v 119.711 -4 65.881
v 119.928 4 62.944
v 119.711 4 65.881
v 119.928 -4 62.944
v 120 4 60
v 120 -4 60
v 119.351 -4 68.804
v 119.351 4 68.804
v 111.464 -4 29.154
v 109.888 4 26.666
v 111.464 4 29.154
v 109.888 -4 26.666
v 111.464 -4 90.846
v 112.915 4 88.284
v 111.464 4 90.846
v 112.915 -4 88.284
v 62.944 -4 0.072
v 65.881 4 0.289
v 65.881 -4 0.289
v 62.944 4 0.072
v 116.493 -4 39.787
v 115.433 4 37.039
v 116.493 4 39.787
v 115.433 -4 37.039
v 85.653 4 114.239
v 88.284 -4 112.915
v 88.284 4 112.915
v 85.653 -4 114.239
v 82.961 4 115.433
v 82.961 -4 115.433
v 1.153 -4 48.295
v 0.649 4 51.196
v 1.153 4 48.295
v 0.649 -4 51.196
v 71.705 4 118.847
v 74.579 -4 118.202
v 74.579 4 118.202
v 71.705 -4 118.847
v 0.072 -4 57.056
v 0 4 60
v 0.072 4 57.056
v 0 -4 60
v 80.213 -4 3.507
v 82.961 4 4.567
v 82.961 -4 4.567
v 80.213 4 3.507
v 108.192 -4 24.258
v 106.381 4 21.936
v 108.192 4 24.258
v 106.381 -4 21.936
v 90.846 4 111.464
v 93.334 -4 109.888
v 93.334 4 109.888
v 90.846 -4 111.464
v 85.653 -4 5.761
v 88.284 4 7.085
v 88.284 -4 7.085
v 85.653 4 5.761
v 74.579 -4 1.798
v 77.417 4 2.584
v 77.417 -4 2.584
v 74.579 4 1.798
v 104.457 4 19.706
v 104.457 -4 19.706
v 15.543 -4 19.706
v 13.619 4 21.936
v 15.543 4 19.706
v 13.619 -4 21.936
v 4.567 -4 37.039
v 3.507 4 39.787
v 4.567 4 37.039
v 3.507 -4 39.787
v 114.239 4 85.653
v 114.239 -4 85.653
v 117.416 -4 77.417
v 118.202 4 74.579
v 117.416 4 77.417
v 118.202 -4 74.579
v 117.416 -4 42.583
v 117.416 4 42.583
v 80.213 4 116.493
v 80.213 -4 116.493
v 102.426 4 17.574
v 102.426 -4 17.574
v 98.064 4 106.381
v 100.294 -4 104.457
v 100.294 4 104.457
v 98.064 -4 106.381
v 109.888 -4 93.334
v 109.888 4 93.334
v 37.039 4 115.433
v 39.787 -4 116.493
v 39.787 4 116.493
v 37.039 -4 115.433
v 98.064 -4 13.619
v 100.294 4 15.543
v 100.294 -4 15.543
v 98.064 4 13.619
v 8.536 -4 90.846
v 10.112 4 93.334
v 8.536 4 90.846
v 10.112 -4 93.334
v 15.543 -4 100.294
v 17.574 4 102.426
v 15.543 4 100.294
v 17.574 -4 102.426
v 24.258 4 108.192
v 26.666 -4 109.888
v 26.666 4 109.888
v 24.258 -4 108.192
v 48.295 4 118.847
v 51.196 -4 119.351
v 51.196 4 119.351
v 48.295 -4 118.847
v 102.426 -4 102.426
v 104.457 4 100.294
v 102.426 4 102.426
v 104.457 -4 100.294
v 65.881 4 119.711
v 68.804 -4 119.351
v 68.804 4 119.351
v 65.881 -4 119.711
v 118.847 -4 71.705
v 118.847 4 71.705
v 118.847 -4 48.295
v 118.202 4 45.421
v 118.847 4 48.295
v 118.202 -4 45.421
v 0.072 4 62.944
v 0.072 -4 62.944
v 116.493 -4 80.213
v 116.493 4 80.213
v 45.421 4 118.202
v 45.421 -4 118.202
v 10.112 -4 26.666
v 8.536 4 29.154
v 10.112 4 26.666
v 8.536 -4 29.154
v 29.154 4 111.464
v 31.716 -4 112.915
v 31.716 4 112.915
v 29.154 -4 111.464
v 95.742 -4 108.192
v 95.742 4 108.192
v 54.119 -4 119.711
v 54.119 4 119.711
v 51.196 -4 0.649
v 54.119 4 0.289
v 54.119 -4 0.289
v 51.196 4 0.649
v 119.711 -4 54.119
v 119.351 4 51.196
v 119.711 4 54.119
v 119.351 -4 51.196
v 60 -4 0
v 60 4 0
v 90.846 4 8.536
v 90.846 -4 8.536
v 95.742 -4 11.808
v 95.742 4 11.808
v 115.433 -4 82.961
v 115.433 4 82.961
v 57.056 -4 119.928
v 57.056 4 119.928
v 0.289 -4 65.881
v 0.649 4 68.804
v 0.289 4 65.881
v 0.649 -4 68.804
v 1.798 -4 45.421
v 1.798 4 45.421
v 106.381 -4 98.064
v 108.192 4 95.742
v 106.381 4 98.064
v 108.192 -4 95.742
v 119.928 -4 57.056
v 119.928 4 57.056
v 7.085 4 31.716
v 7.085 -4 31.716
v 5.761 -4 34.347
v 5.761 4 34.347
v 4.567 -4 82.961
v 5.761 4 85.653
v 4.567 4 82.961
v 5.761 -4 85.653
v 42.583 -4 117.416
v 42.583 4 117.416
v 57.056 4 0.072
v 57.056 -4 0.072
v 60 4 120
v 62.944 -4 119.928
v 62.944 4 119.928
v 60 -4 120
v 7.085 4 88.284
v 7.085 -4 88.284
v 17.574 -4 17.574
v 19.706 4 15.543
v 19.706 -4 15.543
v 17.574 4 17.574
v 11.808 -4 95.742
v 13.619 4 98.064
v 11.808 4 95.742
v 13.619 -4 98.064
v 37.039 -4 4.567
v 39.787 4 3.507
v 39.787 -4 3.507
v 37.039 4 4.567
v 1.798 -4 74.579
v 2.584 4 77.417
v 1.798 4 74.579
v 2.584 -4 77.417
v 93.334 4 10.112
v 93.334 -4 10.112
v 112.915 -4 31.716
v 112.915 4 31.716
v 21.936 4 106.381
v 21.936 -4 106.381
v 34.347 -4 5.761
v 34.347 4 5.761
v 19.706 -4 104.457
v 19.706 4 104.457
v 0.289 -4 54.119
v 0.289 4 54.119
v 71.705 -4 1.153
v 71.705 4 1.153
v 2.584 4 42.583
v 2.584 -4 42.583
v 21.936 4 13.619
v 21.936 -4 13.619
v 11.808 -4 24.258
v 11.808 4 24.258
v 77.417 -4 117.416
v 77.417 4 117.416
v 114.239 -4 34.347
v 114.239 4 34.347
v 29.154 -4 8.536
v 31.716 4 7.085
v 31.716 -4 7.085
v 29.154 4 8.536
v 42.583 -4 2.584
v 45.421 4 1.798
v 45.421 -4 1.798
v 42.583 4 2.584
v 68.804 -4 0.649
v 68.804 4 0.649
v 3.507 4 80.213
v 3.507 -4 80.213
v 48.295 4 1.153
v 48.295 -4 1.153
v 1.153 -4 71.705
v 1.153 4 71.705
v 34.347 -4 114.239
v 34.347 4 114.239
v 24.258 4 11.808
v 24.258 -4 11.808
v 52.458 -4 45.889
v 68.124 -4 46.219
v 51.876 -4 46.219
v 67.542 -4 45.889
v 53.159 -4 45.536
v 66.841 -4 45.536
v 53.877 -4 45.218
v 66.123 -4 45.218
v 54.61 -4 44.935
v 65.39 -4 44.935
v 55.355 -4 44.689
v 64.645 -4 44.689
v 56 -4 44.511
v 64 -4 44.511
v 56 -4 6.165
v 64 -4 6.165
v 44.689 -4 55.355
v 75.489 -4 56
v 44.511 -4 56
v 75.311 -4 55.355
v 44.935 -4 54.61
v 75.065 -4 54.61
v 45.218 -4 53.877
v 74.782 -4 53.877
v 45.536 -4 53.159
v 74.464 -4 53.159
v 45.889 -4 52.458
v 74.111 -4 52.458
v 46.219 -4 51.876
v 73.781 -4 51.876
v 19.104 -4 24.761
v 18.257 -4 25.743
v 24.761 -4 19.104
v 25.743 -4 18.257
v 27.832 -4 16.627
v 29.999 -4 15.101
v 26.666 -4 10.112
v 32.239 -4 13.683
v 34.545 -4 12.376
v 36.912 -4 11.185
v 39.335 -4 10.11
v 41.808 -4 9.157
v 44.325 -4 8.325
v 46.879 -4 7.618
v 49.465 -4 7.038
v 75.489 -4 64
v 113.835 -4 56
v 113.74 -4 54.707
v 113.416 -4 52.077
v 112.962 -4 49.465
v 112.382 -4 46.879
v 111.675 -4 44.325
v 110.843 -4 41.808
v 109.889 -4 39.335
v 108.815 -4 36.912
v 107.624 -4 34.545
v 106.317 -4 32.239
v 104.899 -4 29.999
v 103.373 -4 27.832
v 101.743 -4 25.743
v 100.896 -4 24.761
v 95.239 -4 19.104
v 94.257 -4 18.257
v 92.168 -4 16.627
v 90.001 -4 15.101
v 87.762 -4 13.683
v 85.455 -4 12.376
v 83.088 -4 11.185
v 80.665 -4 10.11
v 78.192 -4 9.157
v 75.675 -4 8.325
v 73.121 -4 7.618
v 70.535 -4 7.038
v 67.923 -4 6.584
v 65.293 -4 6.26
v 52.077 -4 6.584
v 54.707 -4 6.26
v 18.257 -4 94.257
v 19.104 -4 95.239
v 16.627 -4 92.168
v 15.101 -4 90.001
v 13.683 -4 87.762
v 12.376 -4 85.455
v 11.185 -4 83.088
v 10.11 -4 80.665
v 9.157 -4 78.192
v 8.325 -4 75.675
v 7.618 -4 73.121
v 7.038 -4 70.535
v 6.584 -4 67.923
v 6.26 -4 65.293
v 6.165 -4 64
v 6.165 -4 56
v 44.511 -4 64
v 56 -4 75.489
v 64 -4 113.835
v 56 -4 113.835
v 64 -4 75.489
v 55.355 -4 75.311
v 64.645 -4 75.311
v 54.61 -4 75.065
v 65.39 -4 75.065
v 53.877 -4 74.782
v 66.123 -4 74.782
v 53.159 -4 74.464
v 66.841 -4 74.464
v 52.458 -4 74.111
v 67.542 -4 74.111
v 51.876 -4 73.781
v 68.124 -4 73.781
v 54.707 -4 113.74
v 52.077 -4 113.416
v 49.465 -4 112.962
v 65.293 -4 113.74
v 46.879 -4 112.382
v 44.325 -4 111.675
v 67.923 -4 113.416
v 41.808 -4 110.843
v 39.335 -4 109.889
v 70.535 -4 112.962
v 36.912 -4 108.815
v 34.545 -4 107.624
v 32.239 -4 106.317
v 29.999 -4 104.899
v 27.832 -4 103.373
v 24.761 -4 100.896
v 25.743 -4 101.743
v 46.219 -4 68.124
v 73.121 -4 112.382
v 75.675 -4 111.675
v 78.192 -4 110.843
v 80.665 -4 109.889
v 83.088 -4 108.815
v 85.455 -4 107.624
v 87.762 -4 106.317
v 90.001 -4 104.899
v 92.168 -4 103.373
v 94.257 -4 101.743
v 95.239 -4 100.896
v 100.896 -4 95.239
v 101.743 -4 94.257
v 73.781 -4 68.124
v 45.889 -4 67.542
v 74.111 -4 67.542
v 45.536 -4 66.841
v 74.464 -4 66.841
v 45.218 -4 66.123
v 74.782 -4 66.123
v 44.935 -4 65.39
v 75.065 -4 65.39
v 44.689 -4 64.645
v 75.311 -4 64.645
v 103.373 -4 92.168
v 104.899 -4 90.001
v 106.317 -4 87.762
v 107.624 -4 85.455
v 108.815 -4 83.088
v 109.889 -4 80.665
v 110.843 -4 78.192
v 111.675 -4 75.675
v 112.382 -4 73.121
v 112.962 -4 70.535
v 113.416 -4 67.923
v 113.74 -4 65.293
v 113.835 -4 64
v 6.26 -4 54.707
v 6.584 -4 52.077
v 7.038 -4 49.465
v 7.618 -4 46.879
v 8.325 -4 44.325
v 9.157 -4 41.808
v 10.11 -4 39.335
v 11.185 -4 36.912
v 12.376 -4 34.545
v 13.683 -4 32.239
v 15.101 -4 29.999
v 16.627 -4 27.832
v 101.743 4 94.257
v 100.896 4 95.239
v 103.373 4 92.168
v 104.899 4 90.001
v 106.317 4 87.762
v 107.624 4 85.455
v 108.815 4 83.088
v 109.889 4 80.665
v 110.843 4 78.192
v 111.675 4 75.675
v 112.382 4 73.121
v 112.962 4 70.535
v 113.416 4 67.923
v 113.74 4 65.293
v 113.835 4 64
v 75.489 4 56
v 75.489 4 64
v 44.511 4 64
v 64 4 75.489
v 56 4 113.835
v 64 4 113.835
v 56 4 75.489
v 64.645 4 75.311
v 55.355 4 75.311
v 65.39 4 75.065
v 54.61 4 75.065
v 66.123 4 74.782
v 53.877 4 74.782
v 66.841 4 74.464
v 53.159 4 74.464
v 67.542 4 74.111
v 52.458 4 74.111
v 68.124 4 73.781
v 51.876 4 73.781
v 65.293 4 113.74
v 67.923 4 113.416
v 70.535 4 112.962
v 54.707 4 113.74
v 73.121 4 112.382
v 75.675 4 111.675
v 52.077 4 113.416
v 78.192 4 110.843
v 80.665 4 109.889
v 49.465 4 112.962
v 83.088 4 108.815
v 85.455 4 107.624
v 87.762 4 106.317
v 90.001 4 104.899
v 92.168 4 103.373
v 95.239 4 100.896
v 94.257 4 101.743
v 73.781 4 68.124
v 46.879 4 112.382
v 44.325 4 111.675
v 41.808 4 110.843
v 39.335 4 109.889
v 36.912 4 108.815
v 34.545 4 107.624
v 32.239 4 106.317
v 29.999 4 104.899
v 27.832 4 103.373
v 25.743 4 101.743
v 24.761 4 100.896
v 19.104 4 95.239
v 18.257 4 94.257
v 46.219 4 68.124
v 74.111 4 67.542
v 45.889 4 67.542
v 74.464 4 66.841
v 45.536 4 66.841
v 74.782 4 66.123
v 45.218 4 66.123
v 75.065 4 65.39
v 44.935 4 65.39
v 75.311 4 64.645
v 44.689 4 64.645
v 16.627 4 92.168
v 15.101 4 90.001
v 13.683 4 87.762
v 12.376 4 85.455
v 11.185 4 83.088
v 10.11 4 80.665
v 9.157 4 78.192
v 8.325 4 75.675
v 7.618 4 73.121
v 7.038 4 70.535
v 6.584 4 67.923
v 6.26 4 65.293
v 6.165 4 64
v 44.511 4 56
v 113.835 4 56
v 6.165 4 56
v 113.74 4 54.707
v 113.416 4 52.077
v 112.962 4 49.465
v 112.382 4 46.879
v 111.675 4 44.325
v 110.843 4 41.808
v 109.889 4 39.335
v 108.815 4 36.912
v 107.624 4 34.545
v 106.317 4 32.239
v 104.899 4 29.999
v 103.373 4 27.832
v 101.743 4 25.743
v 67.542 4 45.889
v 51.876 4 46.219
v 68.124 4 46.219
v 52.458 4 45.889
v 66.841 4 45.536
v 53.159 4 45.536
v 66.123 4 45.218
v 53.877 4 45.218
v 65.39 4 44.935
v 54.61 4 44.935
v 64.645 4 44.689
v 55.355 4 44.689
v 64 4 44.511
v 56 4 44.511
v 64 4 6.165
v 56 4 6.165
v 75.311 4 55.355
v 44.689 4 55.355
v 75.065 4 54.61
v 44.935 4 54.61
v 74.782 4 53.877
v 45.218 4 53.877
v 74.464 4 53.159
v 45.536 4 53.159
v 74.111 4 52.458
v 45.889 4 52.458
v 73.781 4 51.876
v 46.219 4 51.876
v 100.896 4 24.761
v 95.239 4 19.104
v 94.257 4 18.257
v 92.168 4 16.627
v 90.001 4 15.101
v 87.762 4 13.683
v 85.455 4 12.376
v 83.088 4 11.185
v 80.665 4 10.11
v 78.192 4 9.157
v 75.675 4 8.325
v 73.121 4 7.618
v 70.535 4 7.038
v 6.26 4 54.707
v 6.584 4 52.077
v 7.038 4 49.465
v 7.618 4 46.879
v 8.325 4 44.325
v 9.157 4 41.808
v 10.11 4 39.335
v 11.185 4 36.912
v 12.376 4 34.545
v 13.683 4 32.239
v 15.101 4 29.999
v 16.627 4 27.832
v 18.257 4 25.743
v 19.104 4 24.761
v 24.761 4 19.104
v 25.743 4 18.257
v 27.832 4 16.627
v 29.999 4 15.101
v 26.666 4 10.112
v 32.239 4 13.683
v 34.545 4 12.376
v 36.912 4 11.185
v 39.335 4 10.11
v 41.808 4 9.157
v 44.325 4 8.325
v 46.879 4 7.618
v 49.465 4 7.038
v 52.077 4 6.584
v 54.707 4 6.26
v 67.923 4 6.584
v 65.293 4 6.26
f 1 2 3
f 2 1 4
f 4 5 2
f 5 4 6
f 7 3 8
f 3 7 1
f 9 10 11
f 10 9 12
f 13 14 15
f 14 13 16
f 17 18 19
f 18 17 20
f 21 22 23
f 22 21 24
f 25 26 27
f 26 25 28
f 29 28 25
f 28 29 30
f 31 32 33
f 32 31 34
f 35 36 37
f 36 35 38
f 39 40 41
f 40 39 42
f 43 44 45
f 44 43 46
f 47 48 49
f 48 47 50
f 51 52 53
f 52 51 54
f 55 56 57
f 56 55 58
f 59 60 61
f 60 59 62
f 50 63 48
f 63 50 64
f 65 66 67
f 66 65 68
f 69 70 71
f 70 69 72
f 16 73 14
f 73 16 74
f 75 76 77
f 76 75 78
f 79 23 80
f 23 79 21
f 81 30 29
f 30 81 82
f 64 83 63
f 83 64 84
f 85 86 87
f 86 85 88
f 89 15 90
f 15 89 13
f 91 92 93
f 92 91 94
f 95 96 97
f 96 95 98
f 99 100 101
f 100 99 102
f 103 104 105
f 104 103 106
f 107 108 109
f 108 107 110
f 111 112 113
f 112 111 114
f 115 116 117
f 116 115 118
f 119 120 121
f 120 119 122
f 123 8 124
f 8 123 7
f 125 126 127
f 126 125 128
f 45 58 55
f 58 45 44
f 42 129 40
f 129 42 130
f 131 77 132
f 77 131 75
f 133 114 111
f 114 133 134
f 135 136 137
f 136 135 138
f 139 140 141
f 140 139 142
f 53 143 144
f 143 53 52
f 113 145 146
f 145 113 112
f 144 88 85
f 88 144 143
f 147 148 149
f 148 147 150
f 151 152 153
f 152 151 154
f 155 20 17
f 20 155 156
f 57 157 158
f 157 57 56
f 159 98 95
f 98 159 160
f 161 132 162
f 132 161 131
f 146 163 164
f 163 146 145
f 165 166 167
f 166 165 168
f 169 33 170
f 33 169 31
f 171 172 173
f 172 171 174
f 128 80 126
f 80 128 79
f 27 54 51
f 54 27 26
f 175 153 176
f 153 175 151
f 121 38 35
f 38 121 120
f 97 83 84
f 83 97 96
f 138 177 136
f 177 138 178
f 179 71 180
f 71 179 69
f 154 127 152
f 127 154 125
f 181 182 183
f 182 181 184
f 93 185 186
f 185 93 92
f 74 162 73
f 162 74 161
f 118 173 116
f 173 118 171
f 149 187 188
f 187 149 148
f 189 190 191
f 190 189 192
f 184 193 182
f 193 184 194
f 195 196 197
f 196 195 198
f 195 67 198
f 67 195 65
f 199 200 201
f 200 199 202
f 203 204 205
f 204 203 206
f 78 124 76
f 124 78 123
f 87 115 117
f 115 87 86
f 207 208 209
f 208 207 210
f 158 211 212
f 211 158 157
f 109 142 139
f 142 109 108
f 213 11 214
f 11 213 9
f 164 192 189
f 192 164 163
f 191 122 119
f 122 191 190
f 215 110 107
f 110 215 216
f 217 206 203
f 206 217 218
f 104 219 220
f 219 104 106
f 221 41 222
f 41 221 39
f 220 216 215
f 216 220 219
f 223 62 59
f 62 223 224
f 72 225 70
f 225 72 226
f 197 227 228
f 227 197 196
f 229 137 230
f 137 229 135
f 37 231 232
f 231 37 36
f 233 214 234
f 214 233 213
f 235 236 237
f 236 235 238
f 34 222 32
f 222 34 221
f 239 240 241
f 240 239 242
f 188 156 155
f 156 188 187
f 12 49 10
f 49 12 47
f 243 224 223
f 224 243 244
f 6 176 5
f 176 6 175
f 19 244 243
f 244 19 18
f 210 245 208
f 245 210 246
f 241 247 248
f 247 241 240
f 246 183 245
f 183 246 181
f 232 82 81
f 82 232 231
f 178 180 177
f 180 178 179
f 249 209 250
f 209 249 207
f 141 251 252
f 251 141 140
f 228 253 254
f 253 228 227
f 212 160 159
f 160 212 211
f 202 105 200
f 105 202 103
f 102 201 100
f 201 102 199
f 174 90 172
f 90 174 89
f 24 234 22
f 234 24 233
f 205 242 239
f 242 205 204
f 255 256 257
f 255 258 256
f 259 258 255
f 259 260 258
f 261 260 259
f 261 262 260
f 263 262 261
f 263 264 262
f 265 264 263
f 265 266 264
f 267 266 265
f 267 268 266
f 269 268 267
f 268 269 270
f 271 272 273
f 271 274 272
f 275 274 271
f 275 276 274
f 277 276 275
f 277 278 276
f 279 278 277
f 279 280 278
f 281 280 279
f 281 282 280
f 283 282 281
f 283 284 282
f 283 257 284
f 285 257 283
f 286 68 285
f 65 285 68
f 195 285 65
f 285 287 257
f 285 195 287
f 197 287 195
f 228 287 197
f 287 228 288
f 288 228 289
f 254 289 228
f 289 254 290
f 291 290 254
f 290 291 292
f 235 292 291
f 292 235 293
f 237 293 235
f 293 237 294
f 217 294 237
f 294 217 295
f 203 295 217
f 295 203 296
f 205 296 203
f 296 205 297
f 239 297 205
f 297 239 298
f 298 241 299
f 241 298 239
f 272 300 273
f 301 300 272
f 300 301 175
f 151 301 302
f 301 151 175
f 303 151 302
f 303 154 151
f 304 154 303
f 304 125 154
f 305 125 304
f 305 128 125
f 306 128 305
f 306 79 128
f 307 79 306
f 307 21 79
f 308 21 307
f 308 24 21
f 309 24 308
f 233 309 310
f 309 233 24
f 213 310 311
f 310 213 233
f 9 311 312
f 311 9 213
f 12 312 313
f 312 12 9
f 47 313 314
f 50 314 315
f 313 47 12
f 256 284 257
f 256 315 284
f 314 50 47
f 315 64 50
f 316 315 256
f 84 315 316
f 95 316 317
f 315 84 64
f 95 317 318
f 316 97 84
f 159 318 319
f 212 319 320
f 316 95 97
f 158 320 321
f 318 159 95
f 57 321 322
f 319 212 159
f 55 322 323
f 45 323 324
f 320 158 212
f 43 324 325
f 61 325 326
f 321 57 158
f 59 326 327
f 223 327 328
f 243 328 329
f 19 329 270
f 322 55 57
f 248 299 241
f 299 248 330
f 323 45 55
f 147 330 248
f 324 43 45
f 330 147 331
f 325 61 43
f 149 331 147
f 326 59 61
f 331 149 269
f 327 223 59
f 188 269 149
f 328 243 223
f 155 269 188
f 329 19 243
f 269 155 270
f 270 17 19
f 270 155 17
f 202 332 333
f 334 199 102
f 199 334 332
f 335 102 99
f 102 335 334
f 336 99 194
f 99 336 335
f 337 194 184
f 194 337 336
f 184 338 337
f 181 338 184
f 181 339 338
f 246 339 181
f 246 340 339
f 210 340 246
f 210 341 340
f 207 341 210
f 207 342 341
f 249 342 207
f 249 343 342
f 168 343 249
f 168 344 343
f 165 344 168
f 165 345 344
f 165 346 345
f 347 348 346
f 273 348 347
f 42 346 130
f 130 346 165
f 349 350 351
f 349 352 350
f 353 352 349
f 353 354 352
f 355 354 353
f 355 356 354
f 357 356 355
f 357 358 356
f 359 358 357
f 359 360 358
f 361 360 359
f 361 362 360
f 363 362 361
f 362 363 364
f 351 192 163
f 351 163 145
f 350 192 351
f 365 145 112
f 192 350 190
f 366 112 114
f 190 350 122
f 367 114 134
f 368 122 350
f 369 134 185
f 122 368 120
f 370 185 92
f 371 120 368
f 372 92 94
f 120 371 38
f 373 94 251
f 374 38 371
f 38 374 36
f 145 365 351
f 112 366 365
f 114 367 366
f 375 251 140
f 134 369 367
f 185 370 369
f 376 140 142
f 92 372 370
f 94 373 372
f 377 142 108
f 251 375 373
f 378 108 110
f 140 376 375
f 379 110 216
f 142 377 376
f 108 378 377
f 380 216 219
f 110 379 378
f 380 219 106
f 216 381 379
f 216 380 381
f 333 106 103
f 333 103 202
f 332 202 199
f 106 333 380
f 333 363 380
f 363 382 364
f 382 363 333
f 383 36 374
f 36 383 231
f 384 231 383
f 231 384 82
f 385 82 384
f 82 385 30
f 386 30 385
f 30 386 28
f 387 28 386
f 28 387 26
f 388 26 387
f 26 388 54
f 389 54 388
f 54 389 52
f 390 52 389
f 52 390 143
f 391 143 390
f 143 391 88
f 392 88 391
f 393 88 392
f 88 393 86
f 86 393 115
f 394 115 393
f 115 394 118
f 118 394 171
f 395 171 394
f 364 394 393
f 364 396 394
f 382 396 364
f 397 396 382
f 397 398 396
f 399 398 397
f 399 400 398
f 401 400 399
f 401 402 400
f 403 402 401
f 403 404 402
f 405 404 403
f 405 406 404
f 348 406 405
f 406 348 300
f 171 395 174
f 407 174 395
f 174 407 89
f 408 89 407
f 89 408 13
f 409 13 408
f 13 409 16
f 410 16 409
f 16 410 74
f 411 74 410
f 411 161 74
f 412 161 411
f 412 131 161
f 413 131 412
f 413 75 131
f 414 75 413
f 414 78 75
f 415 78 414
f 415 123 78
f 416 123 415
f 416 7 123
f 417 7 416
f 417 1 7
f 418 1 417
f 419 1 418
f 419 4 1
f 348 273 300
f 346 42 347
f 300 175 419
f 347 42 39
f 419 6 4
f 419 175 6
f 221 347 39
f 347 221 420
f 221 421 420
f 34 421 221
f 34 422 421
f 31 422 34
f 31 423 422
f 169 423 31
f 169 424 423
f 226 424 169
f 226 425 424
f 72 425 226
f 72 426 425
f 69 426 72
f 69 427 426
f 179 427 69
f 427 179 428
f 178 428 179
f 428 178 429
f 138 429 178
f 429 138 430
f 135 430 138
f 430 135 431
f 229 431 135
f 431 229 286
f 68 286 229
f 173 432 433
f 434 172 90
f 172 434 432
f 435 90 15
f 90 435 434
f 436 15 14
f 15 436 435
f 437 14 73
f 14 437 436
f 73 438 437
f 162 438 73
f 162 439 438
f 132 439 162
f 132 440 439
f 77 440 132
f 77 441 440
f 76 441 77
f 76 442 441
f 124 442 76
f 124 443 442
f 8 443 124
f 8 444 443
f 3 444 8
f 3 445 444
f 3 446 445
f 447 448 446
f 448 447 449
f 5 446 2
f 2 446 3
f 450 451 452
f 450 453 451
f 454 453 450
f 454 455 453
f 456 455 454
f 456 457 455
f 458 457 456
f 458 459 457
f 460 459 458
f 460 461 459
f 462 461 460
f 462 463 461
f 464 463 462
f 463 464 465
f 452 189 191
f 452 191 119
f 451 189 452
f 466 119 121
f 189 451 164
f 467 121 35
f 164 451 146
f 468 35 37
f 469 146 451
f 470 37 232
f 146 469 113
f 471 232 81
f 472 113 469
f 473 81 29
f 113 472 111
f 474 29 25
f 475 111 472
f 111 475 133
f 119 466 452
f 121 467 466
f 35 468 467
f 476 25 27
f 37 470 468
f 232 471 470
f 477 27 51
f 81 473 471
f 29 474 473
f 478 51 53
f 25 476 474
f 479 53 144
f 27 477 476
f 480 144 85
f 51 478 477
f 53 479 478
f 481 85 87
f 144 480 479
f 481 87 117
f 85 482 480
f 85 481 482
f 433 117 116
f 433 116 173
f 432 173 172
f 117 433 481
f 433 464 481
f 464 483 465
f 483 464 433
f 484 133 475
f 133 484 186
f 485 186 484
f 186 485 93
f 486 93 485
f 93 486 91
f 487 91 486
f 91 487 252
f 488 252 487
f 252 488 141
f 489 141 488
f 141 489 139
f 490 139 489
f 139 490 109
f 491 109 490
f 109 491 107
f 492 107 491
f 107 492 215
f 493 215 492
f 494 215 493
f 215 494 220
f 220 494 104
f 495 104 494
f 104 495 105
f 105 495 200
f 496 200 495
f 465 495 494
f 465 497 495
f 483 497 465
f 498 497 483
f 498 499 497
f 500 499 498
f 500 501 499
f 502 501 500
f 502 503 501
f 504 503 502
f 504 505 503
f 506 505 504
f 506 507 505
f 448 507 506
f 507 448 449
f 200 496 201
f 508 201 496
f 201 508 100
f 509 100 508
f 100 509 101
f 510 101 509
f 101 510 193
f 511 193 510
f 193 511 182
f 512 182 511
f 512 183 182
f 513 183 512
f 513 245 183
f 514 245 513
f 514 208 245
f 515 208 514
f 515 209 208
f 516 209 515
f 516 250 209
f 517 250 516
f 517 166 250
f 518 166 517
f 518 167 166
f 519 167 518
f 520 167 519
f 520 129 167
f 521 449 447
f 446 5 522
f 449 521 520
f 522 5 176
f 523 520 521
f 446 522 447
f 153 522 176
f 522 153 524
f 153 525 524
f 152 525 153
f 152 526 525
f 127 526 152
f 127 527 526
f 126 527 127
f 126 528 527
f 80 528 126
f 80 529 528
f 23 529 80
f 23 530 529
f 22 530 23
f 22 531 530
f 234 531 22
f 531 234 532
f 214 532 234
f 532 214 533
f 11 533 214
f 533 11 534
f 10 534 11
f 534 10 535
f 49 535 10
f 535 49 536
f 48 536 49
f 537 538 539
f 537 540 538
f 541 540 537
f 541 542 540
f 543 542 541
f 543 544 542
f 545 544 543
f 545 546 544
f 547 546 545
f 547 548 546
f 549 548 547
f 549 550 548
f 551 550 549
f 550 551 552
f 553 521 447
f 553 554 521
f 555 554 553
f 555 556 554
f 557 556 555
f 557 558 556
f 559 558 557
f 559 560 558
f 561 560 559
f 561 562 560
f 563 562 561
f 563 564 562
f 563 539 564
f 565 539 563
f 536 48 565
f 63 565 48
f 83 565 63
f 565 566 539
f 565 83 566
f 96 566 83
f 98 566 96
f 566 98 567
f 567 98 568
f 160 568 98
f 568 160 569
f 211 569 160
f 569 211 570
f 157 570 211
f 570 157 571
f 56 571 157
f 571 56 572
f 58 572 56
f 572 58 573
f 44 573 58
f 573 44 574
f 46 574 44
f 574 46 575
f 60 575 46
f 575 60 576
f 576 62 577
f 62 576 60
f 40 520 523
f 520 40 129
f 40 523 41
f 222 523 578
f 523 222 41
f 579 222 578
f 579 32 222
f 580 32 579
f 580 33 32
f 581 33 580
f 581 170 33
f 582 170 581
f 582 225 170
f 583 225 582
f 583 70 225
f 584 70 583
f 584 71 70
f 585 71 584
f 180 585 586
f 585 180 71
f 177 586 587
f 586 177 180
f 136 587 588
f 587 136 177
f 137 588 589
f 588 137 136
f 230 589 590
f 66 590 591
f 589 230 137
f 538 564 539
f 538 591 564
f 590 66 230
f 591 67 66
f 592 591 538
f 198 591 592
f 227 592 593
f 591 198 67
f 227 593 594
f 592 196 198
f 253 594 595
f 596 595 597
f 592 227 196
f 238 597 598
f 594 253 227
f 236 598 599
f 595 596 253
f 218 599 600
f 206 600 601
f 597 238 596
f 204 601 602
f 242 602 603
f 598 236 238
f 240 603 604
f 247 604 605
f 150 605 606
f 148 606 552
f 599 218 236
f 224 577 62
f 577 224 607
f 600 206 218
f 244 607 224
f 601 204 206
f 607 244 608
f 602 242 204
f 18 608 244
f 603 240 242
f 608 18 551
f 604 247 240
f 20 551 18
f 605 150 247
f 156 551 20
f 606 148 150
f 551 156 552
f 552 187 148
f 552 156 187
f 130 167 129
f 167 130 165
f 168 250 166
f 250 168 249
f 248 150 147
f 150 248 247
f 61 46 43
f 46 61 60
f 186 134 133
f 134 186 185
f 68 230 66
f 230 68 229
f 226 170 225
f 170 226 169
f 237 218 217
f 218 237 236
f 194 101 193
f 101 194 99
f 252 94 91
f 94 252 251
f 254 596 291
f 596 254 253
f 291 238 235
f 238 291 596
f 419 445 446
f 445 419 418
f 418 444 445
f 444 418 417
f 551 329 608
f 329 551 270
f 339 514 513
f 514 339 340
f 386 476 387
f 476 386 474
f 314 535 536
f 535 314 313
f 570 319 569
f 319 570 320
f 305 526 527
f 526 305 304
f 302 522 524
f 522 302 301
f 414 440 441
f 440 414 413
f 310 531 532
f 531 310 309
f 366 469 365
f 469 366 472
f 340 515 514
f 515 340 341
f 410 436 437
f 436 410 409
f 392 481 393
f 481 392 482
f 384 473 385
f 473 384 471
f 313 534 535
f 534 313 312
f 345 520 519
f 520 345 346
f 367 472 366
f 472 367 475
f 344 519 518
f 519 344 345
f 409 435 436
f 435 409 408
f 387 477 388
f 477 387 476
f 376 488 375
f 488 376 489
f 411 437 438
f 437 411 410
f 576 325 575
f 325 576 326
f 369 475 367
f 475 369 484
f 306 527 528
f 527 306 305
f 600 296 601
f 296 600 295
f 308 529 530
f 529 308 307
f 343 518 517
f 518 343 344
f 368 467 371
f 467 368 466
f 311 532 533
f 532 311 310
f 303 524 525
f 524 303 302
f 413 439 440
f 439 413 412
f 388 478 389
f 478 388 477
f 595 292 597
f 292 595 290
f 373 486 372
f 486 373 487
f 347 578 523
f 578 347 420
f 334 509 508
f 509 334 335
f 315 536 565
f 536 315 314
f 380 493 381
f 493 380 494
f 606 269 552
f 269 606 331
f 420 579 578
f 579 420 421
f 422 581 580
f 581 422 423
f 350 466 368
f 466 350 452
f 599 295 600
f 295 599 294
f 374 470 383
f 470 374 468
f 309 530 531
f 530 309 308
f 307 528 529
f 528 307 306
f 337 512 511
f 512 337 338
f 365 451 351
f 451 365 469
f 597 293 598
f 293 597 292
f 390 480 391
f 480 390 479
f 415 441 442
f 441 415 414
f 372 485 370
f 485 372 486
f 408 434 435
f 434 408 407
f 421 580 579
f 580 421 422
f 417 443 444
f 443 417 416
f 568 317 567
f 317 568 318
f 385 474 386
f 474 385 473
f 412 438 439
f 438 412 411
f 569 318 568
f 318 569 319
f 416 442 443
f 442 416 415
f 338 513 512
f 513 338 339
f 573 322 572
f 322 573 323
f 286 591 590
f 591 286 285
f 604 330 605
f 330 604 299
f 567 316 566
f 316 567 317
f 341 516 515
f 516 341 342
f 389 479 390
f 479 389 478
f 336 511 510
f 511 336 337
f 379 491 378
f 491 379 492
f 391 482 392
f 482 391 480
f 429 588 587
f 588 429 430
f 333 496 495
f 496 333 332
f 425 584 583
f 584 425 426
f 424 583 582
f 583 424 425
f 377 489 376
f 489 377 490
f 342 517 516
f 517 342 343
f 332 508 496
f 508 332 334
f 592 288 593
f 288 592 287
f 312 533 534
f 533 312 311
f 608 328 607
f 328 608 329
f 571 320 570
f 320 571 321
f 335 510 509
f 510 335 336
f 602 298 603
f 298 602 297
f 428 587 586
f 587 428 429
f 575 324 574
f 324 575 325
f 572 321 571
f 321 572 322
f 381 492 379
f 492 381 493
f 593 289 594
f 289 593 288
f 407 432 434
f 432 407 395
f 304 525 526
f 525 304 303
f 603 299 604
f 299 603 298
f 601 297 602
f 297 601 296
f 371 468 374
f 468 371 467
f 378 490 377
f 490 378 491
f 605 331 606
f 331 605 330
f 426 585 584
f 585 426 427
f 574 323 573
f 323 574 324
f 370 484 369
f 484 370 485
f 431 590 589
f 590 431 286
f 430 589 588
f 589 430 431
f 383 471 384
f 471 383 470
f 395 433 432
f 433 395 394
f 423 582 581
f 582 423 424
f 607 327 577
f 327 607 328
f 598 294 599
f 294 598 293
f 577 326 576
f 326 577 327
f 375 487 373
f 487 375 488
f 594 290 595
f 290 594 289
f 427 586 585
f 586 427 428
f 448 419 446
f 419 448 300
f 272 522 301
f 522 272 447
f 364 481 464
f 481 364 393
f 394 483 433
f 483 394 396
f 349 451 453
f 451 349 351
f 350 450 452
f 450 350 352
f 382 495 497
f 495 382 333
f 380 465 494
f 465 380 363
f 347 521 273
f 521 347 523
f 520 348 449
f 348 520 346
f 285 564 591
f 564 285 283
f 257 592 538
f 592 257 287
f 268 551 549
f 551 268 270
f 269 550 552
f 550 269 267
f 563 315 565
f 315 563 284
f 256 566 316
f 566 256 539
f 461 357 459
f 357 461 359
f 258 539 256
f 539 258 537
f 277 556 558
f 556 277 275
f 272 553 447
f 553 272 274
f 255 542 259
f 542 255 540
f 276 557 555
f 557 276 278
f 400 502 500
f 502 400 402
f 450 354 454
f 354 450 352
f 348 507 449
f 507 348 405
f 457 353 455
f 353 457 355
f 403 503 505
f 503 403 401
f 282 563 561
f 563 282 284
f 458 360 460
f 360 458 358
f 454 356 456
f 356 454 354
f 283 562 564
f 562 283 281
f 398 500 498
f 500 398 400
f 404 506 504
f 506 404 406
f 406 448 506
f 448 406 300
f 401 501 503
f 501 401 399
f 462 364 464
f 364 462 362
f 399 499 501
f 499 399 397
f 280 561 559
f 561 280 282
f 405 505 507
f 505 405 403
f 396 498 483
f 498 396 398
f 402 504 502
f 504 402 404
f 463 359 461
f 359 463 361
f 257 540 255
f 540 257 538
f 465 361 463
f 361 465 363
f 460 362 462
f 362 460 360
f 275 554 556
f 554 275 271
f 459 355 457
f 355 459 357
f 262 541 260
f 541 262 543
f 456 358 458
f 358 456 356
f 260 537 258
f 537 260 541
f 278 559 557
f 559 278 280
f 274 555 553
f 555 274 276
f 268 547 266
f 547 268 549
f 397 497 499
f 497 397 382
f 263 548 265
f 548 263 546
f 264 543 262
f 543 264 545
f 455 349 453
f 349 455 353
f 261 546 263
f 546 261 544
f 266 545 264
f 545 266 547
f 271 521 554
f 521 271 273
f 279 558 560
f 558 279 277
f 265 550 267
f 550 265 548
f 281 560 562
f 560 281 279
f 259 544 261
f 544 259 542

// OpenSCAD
$fn=128;
/* doodle-meta {"version":1,"parameters":{"outer_diameter":{"label":"Outer diameter","description":"Outer rim diameter","unit":"mm"},"hub_diameter":{"label":"Hub","description":"Hub diameter","unit":"mm"},"spoke_width":{"label":"Spoke width","description":"Spoke bar thickness","unit":"mm"}}} */
// Wheel lies in XZ. FIXED: spokes now reach into the rim inner wall (overlap >= 1 mm) so every spoke connects to the rim.
outer_diameter = 120; // mm
rim_inner_diameter = 108; // mm
hub_diameter = 32; // mm
thickness = 8; // mm
spoke_count = 8; // count
spoke_width = 8; // mm
spoke_reach = 40; // mm from hub overlap start; reaches into the rim (rim inner radius 54, hub start 15)
translate([outer_diameter/2,thickness/2,outer_diameter/2]) rotate([90,0,0]) union(){
  difference(){cylinder(d=outer_diameter,h=thickness);translate([0,0,-1])cylinder(d=rim_inner_diameter,h=thickness+2);}
  cylinder(d=hub_diameter,h=thickness);
  for(a=[0:360/spoke_count:360-360/spoke_count])rotate([0,0,a])translate([hub_diameter/2-1,-thickness/2,0])cube([spoke_reach,thickness,thickness]);
}
